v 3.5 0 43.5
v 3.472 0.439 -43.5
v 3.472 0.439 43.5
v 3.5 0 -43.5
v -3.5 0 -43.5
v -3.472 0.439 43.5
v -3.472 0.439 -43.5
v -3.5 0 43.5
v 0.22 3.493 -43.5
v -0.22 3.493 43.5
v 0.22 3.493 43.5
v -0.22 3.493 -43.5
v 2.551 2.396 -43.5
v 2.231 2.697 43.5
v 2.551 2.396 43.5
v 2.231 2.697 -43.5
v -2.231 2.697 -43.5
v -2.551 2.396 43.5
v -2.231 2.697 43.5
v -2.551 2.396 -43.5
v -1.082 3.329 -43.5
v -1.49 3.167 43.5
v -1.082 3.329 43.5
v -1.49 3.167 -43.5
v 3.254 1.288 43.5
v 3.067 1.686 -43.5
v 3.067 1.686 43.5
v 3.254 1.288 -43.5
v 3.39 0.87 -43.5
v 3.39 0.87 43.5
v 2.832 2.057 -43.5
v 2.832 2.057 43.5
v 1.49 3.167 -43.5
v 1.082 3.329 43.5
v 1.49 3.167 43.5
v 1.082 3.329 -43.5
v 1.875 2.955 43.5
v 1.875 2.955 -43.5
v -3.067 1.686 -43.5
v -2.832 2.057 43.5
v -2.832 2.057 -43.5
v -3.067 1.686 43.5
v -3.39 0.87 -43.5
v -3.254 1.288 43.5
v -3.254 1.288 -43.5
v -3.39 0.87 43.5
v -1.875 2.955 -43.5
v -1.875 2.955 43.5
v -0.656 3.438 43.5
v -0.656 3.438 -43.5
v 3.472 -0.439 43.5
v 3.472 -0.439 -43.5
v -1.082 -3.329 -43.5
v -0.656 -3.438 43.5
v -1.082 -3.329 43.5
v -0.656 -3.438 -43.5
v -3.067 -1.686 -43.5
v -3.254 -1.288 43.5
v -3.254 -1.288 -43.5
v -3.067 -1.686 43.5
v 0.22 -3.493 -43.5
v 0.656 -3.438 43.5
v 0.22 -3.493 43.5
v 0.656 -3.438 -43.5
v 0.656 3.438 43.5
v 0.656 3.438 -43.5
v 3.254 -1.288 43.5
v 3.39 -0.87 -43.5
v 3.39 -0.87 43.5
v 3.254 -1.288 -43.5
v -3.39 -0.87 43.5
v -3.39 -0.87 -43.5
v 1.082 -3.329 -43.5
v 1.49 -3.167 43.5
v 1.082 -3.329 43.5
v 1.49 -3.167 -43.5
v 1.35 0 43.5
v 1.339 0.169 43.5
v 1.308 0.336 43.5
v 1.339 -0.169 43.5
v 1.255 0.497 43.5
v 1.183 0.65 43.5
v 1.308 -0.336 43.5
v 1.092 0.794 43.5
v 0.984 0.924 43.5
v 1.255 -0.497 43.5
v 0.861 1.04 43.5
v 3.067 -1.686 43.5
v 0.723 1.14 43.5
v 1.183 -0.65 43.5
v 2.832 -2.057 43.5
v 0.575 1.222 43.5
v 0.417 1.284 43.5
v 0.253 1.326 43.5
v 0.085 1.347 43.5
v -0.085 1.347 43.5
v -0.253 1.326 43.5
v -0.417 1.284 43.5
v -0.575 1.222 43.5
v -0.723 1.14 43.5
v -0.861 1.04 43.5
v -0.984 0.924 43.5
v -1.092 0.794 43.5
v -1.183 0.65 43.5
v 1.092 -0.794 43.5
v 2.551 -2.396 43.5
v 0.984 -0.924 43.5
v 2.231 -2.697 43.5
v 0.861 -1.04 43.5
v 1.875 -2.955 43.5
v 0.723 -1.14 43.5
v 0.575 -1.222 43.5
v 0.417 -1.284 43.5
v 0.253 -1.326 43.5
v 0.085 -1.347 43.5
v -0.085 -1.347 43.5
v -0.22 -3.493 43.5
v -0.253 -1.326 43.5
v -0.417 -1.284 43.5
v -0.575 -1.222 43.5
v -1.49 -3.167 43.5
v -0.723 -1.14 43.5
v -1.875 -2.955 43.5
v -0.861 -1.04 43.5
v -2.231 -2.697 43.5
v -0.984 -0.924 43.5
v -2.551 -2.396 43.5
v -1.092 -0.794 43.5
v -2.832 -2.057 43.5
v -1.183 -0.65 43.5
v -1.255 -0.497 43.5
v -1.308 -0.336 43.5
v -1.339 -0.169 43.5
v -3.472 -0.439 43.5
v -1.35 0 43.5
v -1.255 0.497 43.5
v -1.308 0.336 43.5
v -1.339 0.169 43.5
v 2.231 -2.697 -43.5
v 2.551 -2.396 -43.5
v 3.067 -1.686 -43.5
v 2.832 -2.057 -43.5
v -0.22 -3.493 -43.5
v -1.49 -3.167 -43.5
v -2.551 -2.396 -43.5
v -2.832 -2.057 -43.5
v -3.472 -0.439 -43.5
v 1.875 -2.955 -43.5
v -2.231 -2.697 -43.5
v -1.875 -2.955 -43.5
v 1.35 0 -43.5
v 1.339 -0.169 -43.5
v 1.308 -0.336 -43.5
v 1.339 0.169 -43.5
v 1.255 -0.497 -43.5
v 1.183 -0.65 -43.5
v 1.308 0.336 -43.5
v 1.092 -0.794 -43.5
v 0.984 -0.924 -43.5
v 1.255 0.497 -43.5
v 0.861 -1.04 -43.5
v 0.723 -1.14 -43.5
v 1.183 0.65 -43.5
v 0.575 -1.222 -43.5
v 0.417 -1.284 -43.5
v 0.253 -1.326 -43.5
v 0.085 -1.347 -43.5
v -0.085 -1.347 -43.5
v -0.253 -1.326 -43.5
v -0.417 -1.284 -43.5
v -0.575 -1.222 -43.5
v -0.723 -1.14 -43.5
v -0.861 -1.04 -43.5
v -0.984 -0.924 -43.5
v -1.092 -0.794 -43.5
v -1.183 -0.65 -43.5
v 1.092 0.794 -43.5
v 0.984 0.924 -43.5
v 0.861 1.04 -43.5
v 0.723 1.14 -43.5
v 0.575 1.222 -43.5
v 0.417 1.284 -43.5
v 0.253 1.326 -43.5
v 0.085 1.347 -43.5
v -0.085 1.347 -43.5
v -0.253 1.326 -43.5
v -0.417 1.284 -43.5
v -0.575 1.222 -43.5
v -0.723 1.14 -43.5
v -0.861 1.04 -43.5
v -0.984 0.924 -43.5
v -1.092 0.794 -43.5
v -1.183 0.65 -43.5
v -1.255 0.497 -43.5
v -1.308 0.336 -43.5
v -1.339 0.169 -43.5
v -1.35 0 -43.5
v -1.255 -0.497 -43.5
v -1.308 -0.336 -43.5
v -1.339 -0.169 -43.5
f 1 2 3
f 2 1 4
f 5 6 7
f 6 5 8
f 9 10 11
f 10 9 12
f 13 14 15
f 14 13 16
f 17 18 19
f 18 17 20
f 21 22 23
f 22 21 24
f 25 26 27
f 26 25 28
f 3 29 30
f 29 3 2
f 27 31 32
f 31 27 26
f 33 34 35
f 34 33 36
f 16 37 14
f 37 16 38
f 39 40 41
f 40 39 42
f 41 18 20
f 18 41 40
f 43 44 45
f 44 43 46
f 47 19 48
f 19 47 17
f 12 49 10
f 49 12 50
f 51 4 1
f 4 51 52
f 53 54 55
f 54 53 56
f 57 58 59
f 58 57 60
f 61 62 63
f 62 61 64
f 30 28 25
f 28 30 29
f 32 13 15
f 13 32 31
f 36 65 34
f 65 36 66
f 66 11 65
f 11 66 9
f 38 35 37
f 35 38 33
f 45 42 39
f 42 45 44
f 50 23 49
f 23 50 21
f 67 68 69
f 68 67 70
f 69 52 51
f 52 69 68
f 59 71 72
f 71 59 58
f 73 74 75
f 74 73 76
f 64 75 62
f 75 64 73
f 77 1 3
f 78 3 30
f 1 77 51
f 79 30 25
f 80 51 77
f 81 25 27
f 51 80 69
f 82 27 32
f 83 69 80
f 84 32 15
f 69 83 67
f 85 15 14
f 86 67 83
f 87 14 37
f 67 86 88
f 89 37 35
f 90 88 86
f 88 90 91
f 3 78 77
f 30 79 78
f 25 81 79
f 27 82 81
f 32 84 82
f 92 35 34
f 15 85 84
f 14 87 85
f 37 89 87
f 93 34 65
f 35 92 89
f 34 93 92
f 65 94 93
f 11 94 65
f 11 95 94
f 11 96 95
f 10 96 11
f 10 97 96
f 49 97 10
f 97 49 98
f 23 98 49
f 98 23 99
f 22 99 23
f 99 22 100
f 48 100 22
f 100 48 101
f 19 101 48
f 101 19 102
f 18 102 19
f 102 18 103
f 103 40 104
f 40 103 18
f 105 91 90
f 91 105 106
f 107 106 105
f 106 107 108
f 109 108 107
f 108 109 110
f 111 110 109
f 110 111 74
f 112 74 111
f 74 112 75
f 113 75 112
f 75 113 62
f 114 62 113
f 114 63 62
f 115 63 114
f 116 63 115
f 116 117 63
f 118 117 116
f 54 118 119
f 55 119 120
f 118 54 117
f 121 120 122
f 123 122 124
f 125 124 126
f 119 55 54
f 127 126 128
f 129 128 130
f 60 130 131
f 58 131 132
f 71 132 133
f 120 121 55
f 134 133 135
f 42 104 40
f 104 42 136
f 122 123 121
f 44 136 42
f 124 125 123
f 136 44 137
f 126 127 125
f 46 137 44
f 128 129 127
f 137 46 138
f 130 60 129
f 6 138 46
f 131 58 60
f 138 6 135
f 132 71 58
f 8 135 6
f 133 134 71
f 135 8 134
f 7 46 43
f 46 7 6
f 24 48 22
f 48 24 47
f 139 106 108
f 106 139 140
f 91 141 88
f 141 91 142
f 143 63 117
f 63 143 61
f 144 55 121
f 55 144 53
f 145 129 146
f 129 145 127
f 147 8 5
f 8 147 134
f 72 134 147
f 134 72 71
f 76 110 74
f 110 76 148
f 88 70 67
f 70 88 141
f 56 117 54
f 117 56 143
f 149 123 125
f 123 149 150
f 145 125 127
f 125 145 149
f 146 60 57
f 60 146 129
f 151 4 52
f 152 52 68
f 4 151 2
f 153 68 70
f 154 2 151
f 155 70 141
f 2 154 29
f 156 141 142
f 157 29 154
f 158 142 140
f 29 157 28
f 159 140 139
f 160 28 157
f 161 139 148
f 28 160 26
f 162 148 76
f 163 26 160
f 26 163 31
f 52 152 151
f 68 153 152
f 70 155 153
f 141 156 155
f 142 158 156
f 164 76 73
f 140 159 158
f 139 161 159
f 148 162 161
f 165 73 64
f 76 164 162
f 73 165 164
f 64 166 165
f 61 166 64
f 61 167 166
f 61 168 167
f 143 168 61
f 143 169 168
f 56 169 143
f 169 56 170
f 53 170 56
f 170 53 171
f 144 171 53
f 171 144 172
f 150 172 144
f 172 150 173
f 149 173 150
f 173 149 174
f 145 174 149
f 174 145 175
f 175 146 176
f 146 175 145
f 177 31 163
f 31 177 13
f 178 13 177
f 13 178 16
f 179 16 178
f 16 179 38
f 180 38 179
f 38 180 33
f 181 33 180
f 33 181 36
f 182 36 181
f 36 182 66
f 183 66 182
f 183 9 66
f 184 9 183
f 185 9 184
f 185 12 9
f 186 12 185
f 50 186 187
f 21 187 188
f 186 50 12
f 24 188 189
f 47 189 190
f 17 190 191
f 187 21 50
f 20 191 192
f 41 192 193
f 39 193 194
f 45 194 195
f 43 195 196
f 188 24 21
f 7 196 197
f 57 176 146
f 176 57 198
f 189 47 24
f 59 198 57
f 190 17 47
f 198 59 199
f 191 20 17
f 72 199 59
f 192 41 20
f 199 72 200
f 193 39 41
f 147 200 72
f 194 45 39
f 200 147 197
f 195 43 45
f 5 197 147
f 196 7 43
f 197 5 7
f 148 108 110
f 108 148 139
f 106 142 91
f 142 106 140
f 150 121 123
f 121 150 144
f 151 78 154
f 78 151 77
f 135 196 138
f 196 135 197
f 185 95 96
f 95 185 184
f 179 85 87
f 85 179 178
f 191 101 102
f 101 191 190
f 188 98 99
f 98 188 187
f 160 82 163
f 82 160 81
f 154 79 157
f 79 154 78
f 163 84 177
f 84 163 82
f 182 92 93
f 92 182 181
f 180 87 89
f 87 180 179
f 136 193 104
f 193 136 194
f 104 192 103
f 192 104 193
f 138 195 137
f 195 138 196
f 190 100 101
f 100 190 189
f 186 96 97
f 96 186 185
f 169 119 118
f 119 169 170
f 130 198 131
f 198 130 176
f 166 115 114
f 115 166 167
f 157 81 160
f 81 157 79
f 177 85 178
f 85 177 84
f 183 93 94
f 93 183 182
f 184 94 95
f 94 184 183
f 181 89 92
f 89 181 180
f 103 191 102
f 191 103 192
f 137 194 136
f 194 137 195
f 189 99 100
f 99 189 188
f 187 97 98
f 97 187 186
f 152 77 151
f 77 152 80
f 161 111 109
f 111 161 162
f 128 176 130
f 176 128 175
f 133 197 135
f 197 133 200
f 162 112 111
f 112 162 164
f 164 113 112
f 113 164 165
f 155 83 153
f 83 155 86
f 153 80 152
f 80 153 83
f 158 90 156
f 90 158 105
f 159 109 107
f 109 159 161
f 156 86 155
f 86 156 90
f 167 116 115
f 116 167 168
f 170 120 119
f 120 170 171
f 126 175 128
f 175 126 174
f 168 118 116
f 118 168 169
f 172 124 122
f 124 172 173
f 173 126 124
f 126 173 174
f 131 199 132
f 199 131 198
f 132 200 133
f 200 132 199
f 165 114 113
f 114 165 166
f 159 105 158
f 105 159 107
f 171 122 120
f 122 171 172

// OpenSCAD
$fn = 50;


difference() {
	union() {
		translate(v = [0, 0, -43.5000000000]) {
			cylinder(h = 87, r = 3.5000000000);
		}
	}
	union() {
		translate(v = [0, 0, -100.0000000000]) {
			cylinder(h = 200, r = 1.3500000000);
		}
	}
}
